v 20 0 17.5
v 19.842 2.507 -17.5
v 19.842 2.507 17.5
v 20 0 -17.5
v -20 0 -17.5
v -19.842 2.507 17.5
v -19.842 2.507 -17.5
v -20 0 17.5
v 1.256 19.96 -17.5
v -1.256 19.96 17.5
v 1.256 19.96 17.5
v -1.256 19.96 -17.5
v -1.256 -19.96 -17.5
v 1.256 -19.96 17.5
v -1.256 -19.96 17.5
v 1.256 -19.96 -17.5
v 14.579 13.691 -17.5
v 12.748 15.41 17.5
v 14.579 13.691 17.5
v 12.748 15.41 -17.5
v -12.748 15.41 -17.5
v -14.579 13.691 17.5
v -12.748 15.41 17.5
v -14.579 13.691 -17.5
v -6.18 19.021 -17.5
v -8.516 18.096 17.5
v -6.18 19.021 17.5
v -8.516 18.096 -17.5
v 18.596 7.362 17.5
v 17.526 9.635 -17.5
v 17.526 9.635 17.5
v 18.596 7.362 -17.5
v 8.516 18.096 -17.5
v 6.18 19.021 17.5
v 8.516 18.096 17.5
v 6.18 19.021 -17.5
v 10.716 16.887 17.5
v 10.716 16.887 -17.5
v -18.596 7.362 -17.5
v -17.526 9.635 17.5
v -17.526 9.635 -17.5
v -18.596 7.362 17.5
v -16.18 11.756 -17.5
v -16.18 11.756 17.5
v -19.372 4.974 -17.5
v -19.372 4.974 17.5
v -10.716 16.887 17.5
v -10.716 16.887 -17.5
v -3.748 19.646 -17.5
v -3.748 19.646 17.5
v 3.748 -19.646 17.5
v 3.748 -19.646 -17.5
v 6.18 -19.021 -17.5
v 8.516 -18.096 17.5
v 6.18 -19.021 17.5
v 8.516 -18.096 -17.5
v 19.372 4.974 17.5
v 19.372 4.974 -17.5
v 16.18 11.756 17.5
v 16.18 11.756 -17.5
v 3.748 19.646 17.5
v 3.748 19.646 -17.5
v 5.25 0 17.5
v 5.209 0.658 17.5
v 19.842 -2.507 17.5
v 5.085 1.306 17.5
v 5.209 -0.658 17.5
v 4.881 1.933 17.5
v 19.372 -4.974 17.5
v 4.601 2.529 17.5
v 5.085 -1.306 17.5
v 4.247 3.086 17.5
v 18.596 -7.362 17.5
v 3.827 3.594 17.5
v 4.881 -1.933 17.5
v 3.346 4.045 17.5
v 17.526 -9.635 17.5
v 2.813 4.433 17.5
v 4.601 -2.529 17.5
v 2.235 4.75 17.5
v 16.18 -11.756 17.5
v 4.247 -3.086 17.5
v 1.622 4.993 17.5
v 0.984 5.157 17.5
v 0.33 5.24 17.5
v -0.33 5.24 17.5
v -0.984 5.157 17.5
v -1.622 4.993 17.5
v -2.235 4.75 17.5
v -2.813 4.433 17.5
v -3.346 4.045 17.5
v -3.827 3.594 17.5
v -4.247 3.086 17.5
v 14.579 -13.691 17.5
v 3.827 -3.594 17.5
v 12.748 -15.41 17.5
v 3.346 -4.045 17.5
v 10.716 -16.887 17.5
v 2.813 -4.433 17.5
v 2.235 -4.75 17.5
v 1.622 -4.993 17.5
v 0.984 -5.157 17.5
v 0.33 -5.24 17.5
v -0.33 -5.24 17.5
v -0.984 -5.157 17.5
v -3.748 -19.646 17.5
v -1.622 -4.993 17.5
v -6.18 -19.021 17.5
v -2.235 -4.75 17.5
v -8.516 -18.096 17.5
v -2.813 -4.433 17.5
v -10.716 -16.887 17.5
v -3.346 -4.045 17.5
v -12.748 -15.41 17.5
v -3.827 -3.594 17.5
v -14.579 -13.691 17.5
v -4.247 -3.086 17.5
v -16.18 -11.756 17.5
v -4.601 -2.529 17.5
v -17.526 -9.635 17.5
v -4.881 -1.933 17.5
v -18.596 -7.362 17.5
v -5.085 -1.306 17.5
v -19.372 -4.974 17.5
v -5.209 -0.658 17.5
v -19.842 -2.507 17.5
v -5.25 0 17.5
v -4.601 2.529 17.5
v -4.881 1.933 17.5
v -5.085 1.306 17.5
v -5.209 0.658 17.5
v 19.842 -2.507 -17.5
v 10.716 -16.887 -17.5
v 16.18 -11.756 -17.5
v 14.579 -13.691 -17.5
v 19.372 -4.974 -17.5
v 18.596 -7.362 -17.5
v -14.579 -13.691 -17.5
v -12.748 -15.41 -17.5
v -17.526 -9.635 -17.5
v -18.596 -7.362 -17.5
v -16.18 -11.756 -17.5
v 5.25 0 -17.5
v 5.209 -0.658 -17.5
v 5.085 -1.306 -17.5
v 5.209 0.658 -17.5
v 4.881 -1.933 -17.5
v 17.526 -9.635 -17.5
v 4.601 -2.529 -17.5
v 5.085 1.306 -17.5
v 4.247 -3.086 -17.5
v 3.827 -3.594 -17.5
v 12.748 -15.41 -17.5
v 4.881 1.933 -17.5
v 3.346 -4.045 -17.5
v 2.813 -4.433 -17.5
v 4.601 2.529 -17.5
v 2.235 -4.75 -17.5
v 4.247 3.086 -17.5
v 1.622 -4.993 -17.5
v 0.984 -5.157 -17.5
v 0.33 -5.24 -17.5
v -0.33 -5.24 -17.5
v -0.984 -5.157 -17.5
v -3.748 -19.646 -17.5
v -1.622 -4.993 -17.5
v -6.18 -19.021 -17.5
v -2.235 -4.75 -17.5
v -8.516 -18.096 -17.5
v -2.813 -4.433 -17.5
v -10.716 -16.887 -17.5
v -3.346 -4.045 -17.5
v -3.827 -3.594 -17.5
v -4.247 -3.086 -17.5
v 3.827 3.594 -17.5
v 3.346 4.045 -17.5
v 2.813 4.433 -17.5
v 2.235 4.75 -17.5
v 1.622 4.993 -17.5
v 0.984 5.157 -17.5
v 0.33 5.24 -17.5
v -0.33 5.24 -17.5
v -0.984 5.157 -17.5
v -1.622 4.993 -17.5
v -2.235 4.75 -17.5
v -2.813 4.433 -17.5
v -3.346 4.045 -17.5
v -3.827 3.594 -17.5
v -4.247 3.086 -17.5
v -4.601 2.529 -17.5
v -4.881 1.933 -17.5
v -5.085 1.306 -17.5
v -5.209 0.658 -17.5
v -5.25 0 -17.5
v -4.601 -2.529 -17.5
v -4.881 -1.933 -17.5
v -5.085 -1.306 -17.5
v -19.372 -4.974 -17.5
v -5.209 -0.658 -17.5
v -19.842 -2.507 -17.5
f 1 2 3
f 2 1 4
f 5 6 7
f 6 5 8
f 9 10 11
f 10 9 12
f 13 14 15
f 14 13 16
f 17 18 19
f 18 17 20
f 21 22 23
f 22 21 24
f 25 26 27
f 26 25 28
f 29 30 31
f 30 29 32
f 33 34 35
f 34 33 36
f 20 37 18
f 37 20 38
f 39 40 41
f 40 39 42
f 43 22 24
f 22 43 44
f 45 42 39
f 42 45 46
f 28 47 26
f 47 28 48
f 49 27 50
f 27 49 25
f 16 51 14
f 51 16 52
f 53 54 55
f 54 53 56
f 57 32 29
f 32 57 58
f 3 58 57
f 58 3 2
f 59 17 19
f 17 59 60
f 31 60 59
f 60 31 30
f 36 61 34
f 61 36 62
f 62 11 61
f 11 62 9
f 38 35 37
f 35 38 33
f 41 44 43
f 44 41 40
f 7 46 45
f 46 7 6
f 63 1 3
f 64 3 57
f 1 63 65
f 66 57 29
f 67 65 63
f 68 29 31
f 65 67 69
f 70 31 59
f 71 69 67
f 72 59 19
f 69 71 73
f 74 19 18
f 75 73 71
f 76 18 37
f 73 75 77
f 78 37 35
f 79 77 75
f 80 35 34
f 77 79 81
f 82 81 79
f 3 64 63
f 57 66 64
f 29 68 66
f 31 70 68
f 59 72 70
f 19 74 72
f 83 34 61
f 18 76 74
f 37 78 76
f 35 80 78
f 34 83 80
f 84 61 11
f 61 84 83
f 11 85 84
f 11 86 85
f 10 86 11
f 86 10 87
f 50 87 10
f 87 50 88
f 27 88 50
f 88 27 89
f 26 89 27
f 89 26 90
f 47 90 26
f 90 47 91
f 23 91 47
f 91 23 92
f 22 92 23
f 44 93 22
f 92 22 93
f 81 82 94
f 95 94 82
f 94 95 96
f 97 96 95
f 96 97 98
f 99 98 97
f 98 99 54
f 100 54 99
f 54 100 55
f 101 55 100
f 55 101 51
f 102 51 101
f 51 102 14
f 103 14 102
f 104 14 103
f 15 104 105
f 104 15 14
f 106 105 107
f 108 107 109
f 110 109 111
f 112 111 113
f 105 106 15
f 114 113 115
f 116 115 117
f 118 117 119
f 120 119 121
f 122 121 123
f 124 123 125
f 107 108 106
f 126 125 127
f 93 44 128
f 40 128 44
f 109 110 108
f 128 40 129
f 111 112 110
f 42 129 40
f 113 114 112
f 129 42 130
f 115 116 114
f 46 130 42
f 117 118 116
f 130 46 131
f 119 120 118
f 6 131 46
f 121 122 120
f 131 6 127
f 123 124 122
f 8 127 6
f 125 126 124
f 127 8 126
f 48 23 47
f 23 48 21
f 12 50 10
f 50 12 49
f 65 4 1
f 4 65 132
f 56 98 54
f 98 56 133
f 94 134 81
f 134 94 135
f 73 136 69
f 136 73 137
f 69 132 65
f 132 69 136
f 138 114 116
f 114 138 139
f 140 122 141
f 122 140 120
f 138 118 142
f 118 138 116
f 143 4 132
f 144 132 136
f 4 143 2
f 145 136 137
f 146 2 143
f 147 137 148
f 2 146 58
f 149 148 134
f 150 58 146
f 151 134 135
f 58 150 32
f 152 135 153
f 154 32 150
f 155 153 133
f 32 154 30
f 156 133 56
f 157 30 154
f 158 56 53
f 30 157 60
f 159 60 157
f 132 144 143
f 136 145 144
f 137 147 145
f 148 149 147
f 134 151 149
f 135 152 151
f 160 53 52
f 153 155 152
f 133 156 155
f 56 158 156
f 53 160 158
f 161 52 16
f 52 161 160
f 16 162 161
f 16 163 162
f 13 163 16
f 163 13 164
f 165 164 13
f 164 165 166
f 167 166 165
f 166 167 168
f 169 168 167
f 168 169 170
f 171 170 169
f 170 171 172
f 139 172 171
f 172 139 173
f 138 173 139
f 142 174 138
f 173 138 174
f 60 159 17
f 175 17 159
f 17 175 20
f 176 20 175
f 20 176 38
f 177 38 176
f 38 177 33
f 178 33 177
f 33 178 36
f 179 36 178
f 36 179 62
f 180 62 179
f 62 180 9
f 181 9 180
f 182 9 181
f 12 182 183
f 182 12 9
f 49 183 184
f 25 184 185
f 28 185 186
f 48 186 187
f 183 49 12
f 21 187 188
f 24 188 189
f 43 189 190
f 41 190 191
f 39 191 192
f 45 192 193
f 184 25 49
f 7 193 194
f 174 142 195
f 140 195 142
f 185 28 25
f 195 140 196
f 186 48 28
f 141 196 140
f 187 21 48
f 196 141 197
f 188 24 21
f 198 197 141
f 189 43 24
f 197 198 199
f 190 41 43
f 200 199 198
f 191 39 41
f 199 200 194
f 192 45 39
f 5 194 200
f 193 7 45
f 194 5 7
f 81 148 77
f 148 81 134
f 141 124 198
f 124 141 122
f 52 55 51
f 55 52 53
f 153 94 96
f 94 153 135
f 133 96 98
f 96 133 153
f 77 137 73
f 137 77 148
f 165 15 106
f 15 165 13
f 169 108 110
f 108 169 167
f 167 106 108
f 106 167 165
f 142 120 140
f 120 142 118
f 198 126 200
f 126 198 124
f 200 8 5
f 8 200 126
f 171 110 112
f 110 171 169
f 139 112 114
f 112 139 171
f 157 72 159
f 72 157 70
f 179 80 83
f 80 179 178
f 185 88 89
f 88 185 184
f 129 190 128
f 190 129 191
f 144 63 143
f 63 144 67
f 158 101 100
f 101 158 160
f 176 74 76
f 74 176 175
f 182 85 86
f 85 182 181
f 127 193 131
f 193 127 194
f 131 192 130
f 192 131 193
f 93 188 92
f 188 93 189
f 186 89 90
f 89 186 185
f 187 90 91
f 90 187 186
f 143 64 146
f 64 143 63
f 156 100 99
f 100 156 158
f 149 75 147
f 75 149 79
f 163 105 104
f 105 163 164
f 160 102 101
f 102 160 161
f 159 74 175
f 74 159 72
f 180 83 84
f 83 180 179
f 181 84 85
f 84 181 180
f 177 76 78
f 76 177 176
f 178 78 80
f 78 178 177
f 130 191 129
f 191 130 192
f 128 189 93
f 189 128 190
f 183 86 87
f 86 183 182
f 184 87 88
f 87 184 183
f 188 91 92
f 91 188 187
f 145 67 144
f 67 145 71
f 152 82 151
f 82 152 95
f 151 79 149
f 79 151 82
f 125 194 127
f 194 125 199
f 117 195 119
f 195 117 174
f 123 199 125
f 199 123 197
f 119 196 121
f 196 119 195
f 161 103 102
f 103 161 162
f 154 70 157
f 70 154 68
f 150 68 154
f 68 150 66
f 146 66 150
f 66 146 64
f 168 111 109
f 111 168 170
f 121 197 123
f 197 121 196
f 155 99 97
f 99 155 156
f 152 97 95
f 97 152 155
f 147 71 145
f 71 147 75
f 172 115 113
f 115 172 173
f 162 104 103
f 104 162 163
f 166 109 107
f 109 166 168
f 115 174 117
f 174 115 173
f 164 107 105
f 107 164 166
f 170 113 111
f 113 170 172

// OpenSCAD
$fn = 50;


difference() {
	union() {
		translate(v = [0, 0, -17.5000000000]) {
			cylinder(h = 35, r = 20.0000000000);
		}
	}
	union() {
		translate(v = [0, 0, -100.0000000000]) {
			cylinder(h = 200, r = 5.2500000000);
		}
	}
}
